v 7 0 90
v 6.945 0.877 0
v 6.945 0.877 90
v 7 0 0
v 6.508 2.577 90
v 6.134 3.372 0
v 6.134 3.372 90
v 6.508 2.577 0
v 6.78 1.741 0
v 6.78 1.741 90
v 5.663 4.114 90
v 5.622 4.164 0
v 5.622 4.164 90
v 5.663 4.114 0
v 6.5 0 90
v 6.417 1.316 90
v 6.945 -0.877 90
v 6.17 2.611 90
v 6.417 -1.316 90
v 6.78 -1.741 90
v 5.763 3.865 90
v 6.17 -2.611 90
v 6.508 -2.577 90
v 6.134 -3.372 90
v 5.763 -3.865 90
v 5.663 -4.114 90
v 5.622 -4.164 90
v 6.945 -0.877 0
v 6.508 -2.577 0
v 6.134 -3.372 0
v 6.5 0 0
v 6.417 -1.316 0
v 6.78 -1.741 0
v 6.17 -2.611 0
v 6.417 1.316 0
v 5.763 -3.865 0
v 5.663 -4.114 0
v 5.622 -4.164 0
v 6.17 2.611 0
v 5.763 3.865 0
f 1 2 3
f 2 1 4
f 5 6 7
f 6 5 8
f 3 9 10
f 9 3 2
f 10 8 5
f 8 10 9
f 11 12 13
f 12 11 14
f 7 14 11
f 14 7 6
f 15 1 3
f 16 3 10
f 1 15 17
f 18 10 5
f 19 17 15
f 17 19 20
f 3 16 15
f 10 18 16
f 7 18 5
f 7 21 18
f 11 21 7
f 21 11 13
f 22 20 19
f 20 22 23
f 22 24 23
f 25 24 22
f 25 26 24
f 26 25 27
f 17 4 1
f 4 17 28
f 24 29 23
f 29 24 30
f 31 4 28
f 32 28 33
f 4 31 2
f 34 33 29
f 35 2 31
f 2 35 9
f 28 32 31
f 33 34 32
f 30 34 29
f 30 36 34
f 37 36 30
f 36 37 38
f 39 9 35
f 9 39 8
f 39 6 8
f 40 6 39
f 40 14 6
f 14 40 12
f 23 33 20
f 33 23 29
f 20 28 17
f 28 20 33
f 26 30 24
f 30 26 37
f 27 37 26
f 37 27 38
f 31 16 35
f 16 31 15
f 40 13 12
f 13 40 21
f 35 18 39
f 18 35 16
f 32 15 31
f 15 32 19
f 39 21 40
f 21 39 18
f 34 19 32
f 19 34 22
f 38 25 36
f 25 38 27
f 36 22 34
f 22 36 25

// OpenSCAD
$fn = 50;


difference() {
	union() {
		cylinder(h = 90, r = 7.0000000000);
		translate(v = [-7.0000000000, 0, 0]) {
			cylinder(h = 90, r = 7.0000000000);
		}
	}
	union() {
		cylinder(h = 90, r = 3.2500000000);
		cylinder(h = 90, r = 1.8000000000);
		cylinder(h = 90, r = 1.8000000000);
		cylinder(h = 90, r = 1.8000000000);
		translate(v = [-11.5000000000, 0, 0]) {
			hull() {
				translate(v = [-3.7500000000, 0.0000000000, 0]) {
					cylinder(h = 90, r = 10.5000000000);
				}
				translate(v = [3.7500000000, 0.0000000000, 0]) {
					cylinder(h = 90, r = 10.5000000000);
				}
				translate(v = [-3.7500000000, -0.0000000000, 0]) {
					cylinder(h = 90, r = 10.5000000000);
				}
				translate(v = [3.7500000000, -0.0000000000, 0]) {
					cylinder(h = 90, r = 10.5000000000);
				}
			}
		}
		translate(v = [-4.0000000000, 0, 0.0000000000]) {
			cylinder(h = 90, r = 10.5000000000);
		}
	}
}
